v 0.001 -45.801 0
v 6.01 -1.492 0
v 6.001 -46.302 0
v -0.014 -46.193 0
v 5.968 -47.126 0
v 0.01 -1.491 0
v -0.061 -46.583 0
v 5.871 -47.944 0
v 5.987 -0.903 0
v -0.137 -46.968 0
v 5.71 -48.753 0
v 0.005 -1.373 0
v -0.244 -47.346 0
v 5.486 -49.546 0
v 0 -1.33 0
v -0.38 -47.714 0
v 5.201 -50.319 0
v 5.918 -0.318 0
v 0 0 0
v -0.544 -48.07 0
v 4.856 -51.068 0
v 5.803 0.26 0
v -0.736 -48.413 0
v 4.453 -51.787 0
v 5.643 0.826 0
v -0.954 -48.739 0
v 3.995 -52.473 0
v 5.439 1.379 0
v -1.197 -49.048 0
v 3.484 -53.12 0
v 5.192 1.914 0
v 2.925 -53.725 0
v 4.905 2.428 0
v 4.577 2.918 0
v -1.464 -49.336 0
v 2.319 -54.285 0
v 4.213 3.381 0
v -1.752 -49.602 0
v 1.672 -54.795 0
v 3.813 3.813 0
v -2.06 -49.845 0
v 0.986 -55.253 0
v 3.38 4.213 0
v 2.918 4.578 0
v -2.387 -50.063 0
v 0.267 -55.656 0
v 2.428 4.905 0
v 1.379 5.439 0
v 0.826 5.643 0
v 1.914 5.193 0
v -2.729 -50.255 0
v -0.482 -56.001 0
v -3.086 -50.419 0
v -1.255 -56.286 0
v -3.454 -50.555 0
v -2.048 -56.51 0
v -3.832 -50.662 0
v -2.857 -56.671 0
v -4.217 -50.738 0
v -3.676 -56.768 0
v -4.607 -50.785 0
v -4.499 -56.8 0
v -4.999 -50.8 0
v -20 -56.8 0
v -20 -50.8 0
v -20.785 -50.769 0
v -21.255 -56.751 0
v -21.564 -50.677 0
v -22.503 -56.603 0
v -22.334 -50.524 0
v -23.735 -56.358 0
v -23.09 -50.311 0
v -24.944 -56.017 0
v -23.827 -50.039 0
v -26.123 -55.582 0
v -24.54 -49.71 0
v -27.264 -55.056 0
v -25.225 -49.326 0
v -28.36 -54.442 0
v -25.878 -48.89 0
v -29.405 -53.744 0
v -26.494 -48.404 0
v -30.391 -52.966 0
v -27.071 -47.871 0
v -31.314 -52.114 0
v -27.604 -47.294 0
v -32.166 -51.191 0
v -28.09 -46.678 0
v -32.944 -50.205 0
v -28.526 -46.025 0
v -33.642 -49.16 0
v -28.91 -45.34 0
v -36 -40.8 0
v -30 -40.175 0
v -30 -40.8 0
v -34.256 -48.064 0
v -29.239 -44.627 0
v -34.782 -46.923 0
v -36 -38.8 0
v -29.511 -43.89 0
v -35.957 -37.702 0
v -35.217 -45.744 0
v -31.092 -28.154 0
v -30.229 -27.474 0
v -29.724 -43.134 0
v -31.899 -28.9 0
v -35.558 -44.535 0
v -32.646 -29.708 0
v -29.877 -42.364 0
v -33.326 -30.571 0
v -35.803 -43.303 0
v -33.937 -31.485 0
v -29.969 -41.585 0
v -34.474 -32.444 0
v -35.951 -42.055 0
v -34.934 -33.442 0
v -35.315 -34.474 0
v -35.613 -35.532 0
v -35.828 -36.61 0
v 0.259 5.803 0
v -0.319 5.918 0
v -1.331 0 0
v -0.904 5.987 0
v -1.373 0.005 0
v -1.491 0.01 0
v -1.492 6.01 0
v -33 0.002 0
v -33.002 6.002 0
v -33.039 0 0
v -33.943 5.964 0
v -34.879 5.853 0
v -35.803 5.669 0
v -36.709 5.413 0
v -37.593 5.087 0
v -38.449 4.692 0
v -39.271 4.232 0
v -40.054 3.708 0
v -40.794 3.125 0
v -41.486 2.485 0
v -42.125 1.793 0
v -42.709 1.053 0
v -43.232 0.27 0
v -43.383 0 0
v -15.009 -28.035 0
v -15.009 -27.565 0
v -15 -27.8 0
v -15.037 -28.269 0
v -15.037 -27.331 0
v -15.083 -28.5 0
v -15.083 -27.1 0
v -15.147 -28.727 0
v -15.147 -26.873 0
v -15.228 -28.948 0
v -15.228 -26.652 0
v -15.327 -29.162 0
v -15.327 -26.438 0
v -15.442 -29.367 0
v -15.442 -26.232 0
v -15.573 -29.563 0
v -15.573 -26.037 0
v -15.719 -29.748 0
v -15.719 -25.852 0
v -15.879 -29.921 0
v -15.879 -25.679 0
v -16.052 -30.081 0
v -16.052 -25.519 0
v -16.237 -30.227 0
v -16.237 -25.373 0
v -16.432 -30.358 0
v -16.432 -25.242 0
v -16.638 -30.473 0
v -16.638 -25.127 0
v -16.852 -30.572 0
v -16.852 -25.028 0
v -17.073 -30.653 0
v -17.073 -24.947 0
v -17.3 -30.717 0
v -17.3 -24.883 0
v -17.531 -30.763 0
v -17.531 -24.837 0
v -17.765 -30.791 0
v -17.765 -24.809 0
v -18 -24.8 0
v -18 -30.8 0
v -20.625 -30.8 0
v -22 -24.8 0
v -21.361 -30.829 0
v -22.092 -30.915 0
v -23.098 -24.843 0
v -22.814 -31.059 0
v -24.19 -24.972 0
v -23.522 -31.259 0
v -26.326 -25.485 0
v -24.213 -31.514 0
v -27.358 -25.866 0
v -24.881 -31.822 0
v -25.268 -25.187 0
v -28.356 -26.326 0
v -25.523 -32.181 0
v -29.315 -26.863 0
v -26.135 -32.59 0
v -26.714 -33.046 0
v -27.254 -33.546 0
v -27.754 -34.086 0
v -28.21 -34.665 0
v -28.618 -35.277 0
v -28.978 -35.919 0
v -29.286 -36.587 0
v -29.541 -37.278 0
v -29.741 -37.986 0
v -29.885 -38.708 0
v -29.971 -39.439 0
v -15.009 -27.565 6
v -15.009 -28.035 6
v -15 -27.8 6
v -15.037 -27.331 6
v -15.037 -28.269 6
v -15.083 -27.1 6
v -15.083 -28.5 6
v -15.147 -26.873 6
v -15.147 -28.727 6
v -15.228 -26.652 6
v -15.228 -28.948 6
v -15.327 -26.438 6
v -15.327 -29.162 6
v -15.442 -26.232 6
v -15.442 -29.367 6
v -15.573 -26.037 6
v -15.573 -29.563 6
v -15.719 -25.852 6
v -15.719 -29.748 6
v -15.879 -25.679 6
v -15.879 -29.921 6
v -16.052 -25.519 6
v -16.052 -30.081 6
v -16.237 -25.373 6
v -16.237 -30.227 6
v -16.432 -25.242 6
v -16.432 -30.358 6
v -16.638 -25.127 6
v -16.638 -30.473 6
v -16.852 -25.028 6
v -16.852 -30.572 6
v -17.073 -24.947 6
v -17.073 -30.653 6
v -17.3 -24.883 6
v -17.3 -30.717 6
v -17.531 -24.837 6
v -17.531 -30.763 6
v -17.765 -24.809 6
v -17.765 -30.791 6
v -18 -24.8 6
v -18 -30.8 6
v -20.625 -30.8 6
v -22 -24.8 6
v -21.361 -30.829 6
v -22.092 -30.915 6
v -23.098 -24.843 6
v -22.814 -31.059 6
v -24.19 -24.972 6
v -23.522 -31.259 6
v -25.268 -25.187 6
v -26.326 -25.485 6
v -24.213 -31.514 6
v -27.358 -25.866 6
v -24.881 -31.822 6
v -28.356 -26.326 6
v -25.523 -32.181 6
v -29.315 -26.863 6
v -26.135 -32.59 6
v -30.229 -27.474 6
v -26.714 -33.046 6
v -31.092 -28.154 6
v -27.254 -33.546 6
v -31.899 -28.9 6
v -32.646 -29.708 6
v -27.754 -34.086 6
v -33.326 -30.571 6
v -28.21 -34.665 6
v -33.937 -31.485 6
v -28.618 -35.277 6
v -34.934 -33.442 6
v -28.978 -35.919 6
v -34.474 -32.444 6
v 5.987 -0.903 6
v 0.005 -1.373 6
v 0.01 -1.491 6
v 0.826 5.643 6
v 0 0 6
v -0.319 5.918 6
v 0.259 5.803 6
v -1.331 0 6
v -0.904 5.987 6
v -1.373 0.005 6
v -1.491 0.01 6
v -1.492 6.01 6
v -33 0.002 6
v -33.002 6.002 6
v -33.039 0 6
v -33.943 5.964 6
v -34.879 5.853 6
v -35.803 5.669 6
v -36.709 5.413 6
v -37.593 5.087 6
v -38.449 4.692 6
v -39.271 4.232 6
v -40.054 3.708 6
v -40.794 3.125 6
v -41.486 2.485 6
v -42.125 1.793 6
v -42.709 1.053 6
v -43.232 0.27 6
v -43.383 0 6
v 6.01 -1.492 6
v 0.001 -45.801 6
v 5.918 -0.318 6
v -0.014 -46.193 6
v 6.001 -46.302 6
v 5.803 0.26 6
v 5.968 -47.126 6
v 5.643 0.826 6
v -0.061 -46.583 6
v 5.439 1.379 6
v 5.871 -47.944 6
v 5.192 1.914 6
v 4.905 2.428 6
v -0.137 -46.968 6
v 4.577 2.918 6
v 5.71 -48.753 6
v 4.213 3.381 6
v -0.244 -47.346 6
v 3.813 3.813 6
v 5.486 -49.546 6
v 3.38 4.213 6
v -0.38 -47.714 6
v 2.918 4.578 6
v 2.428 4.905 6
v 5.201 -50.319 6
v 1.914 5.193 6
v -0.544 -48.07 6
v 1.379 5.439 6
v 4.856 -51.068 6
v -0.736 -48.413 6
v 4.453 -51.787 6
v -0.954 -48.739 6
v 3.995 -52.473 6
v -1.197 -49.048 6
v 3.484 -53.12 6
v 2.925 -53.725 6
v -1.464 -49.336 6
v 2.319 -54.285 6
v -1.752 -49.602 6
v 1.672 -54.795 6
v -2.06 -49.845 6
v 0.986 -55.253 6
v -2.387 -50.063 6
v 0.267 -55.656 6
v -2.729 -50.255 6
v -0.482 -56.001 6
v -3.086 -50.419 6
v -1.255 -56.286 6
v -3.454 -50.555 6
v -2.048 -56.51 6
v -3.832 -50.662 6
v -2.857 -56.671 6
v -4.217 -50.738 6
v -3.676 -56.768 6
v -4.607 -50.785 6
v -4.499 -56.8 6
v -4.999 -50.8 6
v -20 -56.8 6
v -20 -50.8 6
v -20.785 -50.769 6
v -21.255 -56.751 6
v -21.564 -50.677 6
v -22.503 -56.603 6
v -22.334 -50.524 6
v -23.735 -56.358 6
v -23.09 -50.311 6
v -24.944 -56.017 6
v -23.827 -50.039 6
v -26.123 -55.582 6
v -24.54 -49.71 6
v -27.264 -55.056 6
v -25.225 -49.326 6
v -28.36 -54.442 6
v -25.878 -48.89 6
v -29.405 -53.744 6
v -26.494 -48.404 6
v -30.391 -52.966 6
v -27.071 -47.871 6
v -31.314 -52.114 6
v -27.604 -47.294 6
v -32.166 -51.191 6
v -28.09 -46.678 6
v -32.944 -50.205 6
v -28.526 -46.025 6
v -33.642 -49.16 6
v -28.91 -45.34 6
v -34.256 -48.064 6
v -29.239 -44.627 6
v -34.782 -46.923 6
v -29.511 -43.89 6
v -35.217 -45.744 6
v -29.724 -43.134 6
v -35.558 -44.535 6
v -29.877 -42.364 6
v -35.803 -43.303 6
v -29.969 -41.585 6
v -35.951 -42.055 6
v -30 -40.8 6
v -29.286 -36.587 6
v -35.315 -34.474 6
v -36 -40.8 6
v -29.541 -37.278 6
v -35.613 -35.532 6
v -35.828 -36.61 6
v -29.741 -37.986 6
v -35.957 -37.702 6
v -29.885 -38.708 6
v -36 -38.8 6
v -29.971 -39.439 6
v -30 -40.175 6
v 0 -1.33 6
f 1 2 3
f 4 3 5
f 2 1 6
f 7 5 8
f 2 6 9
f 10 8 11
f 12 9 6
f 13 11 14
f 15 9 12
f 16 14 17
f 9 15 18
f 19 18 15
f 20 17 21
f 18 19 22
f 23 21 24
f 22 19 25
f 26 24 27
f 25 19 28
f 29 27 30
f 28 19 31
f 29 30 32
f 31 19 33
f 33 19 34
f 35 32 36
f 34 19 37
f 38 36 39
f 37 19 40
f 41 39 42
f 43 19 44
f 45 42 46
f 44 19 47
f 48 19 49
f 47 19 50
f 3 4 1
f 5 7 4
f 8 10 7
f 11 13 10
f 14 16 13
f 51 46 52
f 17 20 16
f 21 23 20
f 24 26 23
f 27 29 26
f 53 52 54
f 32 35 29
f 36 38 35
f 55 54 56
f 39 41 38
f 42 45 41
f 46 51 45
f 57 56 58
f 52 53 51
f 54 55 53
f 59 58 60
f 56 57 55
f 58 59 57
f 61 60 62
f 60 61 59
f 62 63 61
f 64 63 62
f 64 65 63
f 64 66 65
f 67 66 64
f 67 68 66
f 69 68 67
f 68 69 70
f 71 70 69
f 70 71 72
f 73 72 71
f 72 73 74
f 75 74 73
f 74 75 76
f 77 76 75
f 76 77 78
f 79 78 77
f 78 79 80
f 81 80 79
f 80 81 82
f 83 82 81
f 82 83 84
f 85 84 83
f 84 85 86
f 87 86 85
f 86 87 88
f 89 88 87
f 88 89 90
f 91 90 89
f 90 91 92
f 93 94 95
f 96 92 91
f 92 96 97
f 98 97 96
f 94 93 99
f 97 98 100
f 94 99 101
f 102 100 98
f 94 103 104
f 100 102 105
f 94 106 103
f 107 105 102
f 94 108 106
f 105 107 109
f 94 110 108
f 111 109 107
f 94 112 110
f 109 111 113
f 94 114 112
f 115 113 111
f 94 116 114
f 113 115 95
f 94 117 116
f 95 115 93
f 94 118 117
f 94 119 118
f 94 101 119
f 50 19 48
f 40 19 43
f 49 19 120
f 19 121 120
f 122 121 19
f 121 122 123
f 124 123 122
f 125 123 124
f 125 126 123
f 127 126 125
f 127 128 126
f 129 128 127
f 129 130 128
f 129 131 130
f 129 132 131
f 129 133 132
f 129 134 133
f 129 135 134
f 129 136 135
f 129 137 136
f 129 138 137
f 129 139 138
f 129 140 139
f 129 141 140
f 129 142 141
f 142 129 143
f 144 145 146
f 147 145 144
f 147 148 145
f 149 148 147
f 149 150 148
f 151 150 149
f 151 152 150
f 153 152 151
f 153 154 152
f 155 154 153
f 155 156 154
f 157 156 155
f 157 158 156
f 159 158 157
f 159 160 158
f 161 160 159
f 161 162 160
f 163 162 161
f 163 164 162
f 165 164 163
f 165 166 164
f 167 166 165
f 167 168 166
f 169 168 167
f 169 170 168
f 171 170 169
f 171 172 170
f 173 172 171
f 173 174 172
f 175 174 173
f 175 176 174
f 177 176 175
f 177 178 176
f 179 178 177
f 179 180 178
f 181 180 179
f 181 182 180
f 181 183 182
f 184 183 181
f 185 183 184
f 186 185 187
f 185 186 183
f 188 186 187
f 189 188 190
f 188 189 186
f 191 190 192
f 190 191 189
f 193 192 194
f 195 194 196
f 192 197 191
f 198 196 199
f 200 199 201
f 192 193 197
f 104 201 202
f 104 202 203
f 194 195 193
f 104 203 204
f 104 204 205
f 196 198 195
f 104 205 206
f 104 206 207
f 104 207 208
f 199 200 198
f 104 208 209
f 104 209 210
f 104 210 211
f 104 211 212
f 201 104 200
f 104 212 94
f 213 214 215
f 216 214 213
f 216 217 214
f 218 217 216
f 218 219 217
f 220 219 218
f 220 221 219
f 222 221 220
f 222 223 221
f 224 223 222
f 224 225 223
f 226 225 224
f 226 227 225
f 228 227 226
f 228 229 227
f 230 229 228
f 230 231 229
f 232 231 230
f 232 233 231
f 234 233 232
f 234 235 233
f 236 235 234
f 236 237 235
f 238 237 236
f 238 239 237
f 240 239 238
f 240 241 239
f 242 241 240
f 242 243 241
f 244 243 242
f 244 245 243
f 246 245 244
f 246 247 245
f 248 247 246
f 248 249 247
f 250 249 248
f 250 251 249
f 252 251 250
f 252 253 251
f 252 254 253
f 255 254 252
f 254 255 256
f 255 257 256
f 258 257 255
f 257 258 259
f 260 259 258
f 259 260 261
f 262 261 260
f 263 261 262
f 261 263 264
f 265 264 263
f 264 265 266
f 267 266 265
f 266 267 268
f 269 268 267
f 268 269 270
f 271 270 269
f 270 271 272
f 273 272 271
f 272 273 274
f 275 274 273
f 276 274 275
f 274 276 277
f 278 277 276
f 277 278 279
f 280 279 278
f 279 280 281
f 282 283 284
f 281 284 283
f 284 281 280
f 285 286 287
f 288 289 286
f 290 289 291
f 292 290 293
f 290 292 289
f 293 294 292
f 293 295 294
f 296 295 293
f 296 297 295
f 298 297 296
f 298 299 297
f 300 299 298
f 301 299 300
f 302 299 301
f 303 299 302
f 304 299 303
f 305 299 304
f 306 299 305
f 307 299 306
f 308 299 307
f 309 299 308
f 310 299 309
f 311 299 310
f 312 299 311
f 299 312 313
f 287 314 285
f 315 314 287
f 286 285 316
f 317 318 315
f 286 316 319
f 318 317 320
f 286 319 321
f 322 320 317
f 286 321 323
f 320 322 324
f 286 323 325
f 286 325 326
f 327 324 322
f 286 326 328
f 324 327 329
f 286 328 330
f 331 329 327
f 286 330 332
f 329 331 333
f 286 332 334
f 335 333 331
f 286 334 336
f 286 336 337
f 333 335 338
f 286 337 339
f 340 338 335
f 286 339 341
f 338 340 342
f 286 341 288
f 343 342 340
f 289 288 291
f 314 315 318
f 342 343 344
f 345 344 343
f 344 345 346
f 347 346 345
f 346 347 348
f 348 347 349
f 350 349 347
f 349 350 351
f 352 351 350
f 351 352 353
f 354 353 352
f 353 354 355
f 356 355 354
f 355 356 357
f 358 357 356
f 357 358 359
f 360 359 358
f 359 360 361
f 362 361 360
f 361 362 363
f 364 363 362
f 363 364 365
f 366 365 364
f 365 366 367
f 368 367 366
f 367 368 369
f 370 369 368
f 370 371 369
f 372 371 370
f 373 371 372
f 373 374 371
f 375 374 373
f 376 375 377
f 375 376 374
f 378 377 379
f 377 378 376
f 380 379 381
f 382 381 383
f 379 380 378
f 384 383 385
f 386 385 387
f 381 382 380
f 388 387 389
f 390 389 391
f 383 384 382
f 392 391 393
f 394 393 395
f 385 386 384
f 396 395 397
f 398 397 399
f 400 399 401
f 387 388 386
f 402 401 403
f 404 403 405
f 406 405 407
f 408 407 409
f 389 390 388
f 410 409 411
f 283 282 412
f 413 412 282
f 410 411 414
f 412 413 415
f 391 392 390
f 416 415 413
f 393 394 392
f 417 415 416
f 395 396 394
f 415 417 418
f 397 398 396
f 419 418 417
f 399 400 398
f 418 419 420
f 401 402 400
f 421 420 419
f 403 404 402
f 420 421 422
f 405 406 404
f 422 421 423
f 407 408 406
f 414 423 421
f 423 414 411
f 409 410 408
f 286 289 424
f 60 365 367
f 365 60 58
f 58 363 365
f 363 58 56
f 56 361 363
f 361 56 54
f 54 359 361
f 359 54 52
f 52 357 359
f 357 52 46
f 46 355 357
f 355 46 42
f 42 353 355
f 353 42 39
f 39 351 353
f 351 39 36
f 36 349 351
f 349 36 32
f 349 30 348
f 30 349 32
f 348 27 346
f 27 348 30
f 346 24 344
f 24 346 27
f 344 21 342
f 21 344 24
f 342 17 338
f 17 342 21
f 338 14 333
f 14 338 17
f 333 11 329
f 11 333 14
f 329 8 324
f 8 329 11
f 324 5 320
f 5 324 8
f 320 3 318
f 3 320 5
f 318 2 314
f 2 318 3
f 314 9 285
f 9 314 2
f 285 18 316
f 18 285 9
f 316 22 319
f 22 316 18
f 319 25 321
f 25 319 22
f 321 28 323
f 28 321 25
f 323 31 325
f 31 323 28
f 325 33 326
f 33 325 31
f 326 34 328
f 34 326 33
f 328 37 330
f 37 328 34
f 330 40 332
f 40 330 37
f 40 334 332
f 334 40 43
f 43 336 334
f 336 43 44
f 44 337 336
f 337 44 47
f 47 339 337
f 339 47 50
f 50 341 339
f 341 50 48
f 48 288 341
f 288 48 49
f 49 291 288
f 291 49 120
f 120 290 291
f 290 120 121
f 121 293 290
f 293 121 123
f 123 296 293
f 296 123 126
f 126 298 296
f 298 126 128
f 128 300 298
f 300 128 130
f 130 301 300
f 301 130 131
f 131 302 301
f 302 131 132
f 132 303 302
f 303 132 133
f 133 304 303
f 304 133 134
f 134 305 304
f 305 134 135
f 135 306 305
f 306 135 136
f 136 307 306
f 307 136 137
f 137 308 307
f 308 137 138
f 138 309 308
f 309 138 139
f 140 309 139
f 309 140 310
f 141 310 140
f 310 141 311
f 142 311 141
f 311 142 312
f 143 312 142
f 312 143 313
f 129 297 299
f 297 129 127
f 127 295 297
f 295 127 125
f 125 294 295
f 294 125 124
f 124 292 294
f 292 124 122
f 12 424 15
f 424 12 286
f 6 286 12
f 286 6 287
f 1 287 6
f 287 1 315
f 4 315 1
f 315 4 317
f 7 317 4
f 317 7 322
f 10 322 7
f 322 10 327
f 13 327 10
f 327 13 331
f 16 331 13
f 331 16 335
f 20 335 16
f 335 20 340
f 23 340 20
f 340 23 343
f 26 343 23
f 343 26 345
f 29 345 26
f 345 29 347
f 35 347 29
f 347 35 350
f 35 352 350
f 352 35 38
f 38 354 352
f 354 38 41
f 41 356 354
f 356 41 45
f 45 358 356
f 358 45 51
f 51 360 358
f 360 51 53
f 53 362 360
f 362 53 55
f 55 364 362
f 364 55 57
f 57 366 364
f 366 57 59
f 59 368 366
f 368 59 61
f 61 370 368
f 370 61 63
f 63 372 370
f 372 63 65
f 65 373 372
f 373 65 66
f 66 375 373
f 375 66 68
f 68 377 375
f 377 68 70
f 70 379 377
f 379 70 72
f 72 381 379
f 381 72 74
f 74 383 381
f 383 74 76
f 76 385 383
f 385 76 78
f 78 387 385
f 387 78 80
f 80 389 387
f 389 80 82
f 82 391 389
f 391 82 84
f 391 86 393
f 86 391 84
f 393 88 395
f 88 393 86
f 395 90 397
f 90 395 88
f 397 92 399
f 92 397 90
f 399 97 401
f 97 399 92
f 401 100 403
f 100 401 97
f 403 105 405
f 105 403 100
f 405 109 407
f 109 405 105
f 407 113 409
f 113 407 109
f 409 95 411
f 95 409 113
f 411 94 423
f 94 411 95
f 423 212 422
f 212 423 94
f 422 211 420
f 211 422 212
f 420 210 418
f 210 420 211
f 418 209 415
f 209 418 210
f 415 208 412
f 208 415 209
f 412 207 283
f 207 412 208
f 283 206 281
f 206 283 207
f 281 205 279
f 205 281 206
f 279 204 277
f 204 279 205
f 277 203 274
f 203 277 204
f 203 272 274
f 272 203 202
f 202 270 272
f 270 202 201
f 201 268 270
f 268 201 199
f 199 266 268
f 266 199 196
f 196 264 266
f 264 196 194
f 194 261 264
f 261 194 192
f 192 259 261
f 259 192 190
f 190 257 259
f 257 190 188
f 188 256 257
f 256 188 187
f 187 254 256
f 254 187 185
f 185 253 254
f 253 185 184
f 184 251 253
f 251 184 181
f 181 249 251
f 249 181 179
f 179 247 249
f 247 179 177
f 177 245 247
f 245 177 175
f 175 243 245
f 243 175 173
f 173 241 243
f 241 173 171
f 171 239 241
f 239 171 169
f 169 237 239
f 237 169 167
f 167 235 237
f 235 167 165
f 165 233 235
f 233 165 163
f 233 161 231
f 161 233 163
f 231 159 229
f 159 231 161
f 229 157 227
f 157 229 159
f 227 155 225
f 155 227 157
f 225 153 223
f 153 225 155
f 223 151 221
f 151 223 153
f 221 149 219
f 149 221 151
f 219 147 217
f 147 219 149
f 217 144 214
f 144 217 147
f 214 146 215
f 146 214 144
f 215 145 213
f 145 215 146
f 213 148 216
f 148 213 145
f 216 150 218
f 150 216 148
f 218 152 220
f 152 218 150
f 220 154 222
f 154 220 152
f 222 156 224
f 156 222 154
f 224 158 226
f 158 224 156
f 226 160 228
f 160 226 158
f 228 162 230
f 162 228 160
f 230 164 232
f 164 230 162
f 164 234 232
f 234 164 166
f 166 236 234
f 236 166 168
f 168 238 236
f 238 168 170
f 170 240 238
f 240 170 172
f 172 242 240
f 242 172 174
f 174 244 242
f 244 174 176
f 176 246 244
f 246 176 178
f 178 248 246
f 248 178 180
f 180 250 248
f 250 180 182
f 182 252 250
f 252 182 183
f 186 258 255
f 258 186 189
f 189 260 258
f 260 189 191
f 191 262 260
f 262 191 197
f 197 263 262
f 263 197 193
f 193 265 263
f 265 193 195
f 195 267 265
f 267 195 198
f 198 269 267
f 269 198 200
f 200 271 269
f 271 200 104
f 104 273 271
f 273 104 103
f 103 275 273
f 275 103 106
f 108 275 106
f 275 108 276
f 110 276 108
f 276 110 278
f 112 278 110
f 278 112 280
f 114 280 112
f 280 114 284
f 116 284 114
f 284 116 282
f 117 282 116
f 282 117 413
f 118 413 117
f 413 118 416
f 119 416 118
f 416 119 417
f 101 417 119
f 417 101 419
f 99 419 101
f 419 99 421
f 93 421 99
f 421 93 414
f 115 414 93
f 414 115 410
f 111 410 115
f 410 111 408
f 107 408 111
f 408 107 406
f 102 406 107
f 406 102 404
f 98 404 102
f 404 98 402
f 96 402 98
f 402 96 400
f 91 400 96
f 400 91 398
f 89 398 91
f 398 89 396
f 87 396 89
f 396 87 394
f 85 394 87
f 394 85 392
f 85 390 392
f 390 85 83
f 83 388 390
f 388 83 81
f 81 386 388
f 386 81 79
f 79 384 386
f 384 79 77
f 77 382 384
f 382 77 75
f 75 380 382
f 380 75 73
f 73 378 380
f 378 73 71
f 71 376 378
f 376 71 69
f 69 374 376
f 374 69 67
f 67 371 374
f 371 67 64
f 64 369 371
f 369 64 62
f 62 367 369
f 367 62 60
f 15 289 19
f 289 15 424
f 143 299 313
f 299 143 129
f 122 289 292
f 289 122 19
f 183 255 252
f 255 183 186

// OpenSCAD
/* = desk cable clip
 * part: clip (whole part) v2.0.0
 * units: mm
 *
 * * * * *
 *
 * Designed by Daniel Oaks <https://danieloaks.net>.
 *
 * To the extent possible under law, the person who associated CC0 with
 * this file and design has waived all copyright and related or
 * neighboring rights to this file and design.
 * You should have received a copy of the CC0 legalcode along with this
 * work.  If not, see <http://creativecommons.org/publicdomain/zero/1.0/>.
 *
 * * * * *
 *
 *  This hangs over the edge of your desk and has a holder underneath
 * which you can put cables into. I use it to hold an LED light strip!
 *
 *  If this is holding a lot of weight you may want to adjust the top
 * corner's chamfer. It's designed more for looks than effectiveness :)
 *
 * * * * */
include <Round-Anything/polyround.scad>

// the thickness of the main piece of material
thickness = 6;
// how 'wide' the clip is. this makes it more stable
//  but also increases print time.
clipSize = 6;

// how thick the desk is.
// i.e. how wide will the 'jaw' of the holder need to be?
deskThickness = 24.8;

// how far will the top bar extend over the desk?
topBarWidth = 45;
// how much will the top corner be chamfered?
topCornerChamfer = thickness/4;

// how wide should the space in the holder be?
spaceWidth = 15;
// how wide and high should the holder itself be?
holderWidth = 30;
holderHeight = 20;

function clipPoints(dT, tBW, sW, hH, hW)=[
    // hidden point to make the top bar end rounded
    [-tBW+thickness, -thickness, 0],
    // top bar end
    [-tBW+thickness, 0, tBW/2],
    // corner
    [0.01,  0.01,  topCornerChamfer],
    // main vertical bar
    [0,  -dT-hH-thickness,  thickness],
    // curve of the holder
    [-hW, -dT-hH-thickness, max(hH, hW)],
    [-hW, -dT-thickness, max(hH, hW)],
    // last point of the holder
    [-sW, -dT-thickness, thickness*3],
    
];

difference() {
    linear_extrude(clipSize) {
        radiiPoints=clipPoints(deskThickness, topBarWidth, spaceWidth, holderHeight, holderWidth);
        polygon(polyRound(beamChain(radiiPoints,offset1=0, offset2=-thickness),20));
    }
    translate([-topBarWidth,-deskThickness,-clipSize/2]) cube([topBarWidth,deskThickness,clipSize*2]);
}
